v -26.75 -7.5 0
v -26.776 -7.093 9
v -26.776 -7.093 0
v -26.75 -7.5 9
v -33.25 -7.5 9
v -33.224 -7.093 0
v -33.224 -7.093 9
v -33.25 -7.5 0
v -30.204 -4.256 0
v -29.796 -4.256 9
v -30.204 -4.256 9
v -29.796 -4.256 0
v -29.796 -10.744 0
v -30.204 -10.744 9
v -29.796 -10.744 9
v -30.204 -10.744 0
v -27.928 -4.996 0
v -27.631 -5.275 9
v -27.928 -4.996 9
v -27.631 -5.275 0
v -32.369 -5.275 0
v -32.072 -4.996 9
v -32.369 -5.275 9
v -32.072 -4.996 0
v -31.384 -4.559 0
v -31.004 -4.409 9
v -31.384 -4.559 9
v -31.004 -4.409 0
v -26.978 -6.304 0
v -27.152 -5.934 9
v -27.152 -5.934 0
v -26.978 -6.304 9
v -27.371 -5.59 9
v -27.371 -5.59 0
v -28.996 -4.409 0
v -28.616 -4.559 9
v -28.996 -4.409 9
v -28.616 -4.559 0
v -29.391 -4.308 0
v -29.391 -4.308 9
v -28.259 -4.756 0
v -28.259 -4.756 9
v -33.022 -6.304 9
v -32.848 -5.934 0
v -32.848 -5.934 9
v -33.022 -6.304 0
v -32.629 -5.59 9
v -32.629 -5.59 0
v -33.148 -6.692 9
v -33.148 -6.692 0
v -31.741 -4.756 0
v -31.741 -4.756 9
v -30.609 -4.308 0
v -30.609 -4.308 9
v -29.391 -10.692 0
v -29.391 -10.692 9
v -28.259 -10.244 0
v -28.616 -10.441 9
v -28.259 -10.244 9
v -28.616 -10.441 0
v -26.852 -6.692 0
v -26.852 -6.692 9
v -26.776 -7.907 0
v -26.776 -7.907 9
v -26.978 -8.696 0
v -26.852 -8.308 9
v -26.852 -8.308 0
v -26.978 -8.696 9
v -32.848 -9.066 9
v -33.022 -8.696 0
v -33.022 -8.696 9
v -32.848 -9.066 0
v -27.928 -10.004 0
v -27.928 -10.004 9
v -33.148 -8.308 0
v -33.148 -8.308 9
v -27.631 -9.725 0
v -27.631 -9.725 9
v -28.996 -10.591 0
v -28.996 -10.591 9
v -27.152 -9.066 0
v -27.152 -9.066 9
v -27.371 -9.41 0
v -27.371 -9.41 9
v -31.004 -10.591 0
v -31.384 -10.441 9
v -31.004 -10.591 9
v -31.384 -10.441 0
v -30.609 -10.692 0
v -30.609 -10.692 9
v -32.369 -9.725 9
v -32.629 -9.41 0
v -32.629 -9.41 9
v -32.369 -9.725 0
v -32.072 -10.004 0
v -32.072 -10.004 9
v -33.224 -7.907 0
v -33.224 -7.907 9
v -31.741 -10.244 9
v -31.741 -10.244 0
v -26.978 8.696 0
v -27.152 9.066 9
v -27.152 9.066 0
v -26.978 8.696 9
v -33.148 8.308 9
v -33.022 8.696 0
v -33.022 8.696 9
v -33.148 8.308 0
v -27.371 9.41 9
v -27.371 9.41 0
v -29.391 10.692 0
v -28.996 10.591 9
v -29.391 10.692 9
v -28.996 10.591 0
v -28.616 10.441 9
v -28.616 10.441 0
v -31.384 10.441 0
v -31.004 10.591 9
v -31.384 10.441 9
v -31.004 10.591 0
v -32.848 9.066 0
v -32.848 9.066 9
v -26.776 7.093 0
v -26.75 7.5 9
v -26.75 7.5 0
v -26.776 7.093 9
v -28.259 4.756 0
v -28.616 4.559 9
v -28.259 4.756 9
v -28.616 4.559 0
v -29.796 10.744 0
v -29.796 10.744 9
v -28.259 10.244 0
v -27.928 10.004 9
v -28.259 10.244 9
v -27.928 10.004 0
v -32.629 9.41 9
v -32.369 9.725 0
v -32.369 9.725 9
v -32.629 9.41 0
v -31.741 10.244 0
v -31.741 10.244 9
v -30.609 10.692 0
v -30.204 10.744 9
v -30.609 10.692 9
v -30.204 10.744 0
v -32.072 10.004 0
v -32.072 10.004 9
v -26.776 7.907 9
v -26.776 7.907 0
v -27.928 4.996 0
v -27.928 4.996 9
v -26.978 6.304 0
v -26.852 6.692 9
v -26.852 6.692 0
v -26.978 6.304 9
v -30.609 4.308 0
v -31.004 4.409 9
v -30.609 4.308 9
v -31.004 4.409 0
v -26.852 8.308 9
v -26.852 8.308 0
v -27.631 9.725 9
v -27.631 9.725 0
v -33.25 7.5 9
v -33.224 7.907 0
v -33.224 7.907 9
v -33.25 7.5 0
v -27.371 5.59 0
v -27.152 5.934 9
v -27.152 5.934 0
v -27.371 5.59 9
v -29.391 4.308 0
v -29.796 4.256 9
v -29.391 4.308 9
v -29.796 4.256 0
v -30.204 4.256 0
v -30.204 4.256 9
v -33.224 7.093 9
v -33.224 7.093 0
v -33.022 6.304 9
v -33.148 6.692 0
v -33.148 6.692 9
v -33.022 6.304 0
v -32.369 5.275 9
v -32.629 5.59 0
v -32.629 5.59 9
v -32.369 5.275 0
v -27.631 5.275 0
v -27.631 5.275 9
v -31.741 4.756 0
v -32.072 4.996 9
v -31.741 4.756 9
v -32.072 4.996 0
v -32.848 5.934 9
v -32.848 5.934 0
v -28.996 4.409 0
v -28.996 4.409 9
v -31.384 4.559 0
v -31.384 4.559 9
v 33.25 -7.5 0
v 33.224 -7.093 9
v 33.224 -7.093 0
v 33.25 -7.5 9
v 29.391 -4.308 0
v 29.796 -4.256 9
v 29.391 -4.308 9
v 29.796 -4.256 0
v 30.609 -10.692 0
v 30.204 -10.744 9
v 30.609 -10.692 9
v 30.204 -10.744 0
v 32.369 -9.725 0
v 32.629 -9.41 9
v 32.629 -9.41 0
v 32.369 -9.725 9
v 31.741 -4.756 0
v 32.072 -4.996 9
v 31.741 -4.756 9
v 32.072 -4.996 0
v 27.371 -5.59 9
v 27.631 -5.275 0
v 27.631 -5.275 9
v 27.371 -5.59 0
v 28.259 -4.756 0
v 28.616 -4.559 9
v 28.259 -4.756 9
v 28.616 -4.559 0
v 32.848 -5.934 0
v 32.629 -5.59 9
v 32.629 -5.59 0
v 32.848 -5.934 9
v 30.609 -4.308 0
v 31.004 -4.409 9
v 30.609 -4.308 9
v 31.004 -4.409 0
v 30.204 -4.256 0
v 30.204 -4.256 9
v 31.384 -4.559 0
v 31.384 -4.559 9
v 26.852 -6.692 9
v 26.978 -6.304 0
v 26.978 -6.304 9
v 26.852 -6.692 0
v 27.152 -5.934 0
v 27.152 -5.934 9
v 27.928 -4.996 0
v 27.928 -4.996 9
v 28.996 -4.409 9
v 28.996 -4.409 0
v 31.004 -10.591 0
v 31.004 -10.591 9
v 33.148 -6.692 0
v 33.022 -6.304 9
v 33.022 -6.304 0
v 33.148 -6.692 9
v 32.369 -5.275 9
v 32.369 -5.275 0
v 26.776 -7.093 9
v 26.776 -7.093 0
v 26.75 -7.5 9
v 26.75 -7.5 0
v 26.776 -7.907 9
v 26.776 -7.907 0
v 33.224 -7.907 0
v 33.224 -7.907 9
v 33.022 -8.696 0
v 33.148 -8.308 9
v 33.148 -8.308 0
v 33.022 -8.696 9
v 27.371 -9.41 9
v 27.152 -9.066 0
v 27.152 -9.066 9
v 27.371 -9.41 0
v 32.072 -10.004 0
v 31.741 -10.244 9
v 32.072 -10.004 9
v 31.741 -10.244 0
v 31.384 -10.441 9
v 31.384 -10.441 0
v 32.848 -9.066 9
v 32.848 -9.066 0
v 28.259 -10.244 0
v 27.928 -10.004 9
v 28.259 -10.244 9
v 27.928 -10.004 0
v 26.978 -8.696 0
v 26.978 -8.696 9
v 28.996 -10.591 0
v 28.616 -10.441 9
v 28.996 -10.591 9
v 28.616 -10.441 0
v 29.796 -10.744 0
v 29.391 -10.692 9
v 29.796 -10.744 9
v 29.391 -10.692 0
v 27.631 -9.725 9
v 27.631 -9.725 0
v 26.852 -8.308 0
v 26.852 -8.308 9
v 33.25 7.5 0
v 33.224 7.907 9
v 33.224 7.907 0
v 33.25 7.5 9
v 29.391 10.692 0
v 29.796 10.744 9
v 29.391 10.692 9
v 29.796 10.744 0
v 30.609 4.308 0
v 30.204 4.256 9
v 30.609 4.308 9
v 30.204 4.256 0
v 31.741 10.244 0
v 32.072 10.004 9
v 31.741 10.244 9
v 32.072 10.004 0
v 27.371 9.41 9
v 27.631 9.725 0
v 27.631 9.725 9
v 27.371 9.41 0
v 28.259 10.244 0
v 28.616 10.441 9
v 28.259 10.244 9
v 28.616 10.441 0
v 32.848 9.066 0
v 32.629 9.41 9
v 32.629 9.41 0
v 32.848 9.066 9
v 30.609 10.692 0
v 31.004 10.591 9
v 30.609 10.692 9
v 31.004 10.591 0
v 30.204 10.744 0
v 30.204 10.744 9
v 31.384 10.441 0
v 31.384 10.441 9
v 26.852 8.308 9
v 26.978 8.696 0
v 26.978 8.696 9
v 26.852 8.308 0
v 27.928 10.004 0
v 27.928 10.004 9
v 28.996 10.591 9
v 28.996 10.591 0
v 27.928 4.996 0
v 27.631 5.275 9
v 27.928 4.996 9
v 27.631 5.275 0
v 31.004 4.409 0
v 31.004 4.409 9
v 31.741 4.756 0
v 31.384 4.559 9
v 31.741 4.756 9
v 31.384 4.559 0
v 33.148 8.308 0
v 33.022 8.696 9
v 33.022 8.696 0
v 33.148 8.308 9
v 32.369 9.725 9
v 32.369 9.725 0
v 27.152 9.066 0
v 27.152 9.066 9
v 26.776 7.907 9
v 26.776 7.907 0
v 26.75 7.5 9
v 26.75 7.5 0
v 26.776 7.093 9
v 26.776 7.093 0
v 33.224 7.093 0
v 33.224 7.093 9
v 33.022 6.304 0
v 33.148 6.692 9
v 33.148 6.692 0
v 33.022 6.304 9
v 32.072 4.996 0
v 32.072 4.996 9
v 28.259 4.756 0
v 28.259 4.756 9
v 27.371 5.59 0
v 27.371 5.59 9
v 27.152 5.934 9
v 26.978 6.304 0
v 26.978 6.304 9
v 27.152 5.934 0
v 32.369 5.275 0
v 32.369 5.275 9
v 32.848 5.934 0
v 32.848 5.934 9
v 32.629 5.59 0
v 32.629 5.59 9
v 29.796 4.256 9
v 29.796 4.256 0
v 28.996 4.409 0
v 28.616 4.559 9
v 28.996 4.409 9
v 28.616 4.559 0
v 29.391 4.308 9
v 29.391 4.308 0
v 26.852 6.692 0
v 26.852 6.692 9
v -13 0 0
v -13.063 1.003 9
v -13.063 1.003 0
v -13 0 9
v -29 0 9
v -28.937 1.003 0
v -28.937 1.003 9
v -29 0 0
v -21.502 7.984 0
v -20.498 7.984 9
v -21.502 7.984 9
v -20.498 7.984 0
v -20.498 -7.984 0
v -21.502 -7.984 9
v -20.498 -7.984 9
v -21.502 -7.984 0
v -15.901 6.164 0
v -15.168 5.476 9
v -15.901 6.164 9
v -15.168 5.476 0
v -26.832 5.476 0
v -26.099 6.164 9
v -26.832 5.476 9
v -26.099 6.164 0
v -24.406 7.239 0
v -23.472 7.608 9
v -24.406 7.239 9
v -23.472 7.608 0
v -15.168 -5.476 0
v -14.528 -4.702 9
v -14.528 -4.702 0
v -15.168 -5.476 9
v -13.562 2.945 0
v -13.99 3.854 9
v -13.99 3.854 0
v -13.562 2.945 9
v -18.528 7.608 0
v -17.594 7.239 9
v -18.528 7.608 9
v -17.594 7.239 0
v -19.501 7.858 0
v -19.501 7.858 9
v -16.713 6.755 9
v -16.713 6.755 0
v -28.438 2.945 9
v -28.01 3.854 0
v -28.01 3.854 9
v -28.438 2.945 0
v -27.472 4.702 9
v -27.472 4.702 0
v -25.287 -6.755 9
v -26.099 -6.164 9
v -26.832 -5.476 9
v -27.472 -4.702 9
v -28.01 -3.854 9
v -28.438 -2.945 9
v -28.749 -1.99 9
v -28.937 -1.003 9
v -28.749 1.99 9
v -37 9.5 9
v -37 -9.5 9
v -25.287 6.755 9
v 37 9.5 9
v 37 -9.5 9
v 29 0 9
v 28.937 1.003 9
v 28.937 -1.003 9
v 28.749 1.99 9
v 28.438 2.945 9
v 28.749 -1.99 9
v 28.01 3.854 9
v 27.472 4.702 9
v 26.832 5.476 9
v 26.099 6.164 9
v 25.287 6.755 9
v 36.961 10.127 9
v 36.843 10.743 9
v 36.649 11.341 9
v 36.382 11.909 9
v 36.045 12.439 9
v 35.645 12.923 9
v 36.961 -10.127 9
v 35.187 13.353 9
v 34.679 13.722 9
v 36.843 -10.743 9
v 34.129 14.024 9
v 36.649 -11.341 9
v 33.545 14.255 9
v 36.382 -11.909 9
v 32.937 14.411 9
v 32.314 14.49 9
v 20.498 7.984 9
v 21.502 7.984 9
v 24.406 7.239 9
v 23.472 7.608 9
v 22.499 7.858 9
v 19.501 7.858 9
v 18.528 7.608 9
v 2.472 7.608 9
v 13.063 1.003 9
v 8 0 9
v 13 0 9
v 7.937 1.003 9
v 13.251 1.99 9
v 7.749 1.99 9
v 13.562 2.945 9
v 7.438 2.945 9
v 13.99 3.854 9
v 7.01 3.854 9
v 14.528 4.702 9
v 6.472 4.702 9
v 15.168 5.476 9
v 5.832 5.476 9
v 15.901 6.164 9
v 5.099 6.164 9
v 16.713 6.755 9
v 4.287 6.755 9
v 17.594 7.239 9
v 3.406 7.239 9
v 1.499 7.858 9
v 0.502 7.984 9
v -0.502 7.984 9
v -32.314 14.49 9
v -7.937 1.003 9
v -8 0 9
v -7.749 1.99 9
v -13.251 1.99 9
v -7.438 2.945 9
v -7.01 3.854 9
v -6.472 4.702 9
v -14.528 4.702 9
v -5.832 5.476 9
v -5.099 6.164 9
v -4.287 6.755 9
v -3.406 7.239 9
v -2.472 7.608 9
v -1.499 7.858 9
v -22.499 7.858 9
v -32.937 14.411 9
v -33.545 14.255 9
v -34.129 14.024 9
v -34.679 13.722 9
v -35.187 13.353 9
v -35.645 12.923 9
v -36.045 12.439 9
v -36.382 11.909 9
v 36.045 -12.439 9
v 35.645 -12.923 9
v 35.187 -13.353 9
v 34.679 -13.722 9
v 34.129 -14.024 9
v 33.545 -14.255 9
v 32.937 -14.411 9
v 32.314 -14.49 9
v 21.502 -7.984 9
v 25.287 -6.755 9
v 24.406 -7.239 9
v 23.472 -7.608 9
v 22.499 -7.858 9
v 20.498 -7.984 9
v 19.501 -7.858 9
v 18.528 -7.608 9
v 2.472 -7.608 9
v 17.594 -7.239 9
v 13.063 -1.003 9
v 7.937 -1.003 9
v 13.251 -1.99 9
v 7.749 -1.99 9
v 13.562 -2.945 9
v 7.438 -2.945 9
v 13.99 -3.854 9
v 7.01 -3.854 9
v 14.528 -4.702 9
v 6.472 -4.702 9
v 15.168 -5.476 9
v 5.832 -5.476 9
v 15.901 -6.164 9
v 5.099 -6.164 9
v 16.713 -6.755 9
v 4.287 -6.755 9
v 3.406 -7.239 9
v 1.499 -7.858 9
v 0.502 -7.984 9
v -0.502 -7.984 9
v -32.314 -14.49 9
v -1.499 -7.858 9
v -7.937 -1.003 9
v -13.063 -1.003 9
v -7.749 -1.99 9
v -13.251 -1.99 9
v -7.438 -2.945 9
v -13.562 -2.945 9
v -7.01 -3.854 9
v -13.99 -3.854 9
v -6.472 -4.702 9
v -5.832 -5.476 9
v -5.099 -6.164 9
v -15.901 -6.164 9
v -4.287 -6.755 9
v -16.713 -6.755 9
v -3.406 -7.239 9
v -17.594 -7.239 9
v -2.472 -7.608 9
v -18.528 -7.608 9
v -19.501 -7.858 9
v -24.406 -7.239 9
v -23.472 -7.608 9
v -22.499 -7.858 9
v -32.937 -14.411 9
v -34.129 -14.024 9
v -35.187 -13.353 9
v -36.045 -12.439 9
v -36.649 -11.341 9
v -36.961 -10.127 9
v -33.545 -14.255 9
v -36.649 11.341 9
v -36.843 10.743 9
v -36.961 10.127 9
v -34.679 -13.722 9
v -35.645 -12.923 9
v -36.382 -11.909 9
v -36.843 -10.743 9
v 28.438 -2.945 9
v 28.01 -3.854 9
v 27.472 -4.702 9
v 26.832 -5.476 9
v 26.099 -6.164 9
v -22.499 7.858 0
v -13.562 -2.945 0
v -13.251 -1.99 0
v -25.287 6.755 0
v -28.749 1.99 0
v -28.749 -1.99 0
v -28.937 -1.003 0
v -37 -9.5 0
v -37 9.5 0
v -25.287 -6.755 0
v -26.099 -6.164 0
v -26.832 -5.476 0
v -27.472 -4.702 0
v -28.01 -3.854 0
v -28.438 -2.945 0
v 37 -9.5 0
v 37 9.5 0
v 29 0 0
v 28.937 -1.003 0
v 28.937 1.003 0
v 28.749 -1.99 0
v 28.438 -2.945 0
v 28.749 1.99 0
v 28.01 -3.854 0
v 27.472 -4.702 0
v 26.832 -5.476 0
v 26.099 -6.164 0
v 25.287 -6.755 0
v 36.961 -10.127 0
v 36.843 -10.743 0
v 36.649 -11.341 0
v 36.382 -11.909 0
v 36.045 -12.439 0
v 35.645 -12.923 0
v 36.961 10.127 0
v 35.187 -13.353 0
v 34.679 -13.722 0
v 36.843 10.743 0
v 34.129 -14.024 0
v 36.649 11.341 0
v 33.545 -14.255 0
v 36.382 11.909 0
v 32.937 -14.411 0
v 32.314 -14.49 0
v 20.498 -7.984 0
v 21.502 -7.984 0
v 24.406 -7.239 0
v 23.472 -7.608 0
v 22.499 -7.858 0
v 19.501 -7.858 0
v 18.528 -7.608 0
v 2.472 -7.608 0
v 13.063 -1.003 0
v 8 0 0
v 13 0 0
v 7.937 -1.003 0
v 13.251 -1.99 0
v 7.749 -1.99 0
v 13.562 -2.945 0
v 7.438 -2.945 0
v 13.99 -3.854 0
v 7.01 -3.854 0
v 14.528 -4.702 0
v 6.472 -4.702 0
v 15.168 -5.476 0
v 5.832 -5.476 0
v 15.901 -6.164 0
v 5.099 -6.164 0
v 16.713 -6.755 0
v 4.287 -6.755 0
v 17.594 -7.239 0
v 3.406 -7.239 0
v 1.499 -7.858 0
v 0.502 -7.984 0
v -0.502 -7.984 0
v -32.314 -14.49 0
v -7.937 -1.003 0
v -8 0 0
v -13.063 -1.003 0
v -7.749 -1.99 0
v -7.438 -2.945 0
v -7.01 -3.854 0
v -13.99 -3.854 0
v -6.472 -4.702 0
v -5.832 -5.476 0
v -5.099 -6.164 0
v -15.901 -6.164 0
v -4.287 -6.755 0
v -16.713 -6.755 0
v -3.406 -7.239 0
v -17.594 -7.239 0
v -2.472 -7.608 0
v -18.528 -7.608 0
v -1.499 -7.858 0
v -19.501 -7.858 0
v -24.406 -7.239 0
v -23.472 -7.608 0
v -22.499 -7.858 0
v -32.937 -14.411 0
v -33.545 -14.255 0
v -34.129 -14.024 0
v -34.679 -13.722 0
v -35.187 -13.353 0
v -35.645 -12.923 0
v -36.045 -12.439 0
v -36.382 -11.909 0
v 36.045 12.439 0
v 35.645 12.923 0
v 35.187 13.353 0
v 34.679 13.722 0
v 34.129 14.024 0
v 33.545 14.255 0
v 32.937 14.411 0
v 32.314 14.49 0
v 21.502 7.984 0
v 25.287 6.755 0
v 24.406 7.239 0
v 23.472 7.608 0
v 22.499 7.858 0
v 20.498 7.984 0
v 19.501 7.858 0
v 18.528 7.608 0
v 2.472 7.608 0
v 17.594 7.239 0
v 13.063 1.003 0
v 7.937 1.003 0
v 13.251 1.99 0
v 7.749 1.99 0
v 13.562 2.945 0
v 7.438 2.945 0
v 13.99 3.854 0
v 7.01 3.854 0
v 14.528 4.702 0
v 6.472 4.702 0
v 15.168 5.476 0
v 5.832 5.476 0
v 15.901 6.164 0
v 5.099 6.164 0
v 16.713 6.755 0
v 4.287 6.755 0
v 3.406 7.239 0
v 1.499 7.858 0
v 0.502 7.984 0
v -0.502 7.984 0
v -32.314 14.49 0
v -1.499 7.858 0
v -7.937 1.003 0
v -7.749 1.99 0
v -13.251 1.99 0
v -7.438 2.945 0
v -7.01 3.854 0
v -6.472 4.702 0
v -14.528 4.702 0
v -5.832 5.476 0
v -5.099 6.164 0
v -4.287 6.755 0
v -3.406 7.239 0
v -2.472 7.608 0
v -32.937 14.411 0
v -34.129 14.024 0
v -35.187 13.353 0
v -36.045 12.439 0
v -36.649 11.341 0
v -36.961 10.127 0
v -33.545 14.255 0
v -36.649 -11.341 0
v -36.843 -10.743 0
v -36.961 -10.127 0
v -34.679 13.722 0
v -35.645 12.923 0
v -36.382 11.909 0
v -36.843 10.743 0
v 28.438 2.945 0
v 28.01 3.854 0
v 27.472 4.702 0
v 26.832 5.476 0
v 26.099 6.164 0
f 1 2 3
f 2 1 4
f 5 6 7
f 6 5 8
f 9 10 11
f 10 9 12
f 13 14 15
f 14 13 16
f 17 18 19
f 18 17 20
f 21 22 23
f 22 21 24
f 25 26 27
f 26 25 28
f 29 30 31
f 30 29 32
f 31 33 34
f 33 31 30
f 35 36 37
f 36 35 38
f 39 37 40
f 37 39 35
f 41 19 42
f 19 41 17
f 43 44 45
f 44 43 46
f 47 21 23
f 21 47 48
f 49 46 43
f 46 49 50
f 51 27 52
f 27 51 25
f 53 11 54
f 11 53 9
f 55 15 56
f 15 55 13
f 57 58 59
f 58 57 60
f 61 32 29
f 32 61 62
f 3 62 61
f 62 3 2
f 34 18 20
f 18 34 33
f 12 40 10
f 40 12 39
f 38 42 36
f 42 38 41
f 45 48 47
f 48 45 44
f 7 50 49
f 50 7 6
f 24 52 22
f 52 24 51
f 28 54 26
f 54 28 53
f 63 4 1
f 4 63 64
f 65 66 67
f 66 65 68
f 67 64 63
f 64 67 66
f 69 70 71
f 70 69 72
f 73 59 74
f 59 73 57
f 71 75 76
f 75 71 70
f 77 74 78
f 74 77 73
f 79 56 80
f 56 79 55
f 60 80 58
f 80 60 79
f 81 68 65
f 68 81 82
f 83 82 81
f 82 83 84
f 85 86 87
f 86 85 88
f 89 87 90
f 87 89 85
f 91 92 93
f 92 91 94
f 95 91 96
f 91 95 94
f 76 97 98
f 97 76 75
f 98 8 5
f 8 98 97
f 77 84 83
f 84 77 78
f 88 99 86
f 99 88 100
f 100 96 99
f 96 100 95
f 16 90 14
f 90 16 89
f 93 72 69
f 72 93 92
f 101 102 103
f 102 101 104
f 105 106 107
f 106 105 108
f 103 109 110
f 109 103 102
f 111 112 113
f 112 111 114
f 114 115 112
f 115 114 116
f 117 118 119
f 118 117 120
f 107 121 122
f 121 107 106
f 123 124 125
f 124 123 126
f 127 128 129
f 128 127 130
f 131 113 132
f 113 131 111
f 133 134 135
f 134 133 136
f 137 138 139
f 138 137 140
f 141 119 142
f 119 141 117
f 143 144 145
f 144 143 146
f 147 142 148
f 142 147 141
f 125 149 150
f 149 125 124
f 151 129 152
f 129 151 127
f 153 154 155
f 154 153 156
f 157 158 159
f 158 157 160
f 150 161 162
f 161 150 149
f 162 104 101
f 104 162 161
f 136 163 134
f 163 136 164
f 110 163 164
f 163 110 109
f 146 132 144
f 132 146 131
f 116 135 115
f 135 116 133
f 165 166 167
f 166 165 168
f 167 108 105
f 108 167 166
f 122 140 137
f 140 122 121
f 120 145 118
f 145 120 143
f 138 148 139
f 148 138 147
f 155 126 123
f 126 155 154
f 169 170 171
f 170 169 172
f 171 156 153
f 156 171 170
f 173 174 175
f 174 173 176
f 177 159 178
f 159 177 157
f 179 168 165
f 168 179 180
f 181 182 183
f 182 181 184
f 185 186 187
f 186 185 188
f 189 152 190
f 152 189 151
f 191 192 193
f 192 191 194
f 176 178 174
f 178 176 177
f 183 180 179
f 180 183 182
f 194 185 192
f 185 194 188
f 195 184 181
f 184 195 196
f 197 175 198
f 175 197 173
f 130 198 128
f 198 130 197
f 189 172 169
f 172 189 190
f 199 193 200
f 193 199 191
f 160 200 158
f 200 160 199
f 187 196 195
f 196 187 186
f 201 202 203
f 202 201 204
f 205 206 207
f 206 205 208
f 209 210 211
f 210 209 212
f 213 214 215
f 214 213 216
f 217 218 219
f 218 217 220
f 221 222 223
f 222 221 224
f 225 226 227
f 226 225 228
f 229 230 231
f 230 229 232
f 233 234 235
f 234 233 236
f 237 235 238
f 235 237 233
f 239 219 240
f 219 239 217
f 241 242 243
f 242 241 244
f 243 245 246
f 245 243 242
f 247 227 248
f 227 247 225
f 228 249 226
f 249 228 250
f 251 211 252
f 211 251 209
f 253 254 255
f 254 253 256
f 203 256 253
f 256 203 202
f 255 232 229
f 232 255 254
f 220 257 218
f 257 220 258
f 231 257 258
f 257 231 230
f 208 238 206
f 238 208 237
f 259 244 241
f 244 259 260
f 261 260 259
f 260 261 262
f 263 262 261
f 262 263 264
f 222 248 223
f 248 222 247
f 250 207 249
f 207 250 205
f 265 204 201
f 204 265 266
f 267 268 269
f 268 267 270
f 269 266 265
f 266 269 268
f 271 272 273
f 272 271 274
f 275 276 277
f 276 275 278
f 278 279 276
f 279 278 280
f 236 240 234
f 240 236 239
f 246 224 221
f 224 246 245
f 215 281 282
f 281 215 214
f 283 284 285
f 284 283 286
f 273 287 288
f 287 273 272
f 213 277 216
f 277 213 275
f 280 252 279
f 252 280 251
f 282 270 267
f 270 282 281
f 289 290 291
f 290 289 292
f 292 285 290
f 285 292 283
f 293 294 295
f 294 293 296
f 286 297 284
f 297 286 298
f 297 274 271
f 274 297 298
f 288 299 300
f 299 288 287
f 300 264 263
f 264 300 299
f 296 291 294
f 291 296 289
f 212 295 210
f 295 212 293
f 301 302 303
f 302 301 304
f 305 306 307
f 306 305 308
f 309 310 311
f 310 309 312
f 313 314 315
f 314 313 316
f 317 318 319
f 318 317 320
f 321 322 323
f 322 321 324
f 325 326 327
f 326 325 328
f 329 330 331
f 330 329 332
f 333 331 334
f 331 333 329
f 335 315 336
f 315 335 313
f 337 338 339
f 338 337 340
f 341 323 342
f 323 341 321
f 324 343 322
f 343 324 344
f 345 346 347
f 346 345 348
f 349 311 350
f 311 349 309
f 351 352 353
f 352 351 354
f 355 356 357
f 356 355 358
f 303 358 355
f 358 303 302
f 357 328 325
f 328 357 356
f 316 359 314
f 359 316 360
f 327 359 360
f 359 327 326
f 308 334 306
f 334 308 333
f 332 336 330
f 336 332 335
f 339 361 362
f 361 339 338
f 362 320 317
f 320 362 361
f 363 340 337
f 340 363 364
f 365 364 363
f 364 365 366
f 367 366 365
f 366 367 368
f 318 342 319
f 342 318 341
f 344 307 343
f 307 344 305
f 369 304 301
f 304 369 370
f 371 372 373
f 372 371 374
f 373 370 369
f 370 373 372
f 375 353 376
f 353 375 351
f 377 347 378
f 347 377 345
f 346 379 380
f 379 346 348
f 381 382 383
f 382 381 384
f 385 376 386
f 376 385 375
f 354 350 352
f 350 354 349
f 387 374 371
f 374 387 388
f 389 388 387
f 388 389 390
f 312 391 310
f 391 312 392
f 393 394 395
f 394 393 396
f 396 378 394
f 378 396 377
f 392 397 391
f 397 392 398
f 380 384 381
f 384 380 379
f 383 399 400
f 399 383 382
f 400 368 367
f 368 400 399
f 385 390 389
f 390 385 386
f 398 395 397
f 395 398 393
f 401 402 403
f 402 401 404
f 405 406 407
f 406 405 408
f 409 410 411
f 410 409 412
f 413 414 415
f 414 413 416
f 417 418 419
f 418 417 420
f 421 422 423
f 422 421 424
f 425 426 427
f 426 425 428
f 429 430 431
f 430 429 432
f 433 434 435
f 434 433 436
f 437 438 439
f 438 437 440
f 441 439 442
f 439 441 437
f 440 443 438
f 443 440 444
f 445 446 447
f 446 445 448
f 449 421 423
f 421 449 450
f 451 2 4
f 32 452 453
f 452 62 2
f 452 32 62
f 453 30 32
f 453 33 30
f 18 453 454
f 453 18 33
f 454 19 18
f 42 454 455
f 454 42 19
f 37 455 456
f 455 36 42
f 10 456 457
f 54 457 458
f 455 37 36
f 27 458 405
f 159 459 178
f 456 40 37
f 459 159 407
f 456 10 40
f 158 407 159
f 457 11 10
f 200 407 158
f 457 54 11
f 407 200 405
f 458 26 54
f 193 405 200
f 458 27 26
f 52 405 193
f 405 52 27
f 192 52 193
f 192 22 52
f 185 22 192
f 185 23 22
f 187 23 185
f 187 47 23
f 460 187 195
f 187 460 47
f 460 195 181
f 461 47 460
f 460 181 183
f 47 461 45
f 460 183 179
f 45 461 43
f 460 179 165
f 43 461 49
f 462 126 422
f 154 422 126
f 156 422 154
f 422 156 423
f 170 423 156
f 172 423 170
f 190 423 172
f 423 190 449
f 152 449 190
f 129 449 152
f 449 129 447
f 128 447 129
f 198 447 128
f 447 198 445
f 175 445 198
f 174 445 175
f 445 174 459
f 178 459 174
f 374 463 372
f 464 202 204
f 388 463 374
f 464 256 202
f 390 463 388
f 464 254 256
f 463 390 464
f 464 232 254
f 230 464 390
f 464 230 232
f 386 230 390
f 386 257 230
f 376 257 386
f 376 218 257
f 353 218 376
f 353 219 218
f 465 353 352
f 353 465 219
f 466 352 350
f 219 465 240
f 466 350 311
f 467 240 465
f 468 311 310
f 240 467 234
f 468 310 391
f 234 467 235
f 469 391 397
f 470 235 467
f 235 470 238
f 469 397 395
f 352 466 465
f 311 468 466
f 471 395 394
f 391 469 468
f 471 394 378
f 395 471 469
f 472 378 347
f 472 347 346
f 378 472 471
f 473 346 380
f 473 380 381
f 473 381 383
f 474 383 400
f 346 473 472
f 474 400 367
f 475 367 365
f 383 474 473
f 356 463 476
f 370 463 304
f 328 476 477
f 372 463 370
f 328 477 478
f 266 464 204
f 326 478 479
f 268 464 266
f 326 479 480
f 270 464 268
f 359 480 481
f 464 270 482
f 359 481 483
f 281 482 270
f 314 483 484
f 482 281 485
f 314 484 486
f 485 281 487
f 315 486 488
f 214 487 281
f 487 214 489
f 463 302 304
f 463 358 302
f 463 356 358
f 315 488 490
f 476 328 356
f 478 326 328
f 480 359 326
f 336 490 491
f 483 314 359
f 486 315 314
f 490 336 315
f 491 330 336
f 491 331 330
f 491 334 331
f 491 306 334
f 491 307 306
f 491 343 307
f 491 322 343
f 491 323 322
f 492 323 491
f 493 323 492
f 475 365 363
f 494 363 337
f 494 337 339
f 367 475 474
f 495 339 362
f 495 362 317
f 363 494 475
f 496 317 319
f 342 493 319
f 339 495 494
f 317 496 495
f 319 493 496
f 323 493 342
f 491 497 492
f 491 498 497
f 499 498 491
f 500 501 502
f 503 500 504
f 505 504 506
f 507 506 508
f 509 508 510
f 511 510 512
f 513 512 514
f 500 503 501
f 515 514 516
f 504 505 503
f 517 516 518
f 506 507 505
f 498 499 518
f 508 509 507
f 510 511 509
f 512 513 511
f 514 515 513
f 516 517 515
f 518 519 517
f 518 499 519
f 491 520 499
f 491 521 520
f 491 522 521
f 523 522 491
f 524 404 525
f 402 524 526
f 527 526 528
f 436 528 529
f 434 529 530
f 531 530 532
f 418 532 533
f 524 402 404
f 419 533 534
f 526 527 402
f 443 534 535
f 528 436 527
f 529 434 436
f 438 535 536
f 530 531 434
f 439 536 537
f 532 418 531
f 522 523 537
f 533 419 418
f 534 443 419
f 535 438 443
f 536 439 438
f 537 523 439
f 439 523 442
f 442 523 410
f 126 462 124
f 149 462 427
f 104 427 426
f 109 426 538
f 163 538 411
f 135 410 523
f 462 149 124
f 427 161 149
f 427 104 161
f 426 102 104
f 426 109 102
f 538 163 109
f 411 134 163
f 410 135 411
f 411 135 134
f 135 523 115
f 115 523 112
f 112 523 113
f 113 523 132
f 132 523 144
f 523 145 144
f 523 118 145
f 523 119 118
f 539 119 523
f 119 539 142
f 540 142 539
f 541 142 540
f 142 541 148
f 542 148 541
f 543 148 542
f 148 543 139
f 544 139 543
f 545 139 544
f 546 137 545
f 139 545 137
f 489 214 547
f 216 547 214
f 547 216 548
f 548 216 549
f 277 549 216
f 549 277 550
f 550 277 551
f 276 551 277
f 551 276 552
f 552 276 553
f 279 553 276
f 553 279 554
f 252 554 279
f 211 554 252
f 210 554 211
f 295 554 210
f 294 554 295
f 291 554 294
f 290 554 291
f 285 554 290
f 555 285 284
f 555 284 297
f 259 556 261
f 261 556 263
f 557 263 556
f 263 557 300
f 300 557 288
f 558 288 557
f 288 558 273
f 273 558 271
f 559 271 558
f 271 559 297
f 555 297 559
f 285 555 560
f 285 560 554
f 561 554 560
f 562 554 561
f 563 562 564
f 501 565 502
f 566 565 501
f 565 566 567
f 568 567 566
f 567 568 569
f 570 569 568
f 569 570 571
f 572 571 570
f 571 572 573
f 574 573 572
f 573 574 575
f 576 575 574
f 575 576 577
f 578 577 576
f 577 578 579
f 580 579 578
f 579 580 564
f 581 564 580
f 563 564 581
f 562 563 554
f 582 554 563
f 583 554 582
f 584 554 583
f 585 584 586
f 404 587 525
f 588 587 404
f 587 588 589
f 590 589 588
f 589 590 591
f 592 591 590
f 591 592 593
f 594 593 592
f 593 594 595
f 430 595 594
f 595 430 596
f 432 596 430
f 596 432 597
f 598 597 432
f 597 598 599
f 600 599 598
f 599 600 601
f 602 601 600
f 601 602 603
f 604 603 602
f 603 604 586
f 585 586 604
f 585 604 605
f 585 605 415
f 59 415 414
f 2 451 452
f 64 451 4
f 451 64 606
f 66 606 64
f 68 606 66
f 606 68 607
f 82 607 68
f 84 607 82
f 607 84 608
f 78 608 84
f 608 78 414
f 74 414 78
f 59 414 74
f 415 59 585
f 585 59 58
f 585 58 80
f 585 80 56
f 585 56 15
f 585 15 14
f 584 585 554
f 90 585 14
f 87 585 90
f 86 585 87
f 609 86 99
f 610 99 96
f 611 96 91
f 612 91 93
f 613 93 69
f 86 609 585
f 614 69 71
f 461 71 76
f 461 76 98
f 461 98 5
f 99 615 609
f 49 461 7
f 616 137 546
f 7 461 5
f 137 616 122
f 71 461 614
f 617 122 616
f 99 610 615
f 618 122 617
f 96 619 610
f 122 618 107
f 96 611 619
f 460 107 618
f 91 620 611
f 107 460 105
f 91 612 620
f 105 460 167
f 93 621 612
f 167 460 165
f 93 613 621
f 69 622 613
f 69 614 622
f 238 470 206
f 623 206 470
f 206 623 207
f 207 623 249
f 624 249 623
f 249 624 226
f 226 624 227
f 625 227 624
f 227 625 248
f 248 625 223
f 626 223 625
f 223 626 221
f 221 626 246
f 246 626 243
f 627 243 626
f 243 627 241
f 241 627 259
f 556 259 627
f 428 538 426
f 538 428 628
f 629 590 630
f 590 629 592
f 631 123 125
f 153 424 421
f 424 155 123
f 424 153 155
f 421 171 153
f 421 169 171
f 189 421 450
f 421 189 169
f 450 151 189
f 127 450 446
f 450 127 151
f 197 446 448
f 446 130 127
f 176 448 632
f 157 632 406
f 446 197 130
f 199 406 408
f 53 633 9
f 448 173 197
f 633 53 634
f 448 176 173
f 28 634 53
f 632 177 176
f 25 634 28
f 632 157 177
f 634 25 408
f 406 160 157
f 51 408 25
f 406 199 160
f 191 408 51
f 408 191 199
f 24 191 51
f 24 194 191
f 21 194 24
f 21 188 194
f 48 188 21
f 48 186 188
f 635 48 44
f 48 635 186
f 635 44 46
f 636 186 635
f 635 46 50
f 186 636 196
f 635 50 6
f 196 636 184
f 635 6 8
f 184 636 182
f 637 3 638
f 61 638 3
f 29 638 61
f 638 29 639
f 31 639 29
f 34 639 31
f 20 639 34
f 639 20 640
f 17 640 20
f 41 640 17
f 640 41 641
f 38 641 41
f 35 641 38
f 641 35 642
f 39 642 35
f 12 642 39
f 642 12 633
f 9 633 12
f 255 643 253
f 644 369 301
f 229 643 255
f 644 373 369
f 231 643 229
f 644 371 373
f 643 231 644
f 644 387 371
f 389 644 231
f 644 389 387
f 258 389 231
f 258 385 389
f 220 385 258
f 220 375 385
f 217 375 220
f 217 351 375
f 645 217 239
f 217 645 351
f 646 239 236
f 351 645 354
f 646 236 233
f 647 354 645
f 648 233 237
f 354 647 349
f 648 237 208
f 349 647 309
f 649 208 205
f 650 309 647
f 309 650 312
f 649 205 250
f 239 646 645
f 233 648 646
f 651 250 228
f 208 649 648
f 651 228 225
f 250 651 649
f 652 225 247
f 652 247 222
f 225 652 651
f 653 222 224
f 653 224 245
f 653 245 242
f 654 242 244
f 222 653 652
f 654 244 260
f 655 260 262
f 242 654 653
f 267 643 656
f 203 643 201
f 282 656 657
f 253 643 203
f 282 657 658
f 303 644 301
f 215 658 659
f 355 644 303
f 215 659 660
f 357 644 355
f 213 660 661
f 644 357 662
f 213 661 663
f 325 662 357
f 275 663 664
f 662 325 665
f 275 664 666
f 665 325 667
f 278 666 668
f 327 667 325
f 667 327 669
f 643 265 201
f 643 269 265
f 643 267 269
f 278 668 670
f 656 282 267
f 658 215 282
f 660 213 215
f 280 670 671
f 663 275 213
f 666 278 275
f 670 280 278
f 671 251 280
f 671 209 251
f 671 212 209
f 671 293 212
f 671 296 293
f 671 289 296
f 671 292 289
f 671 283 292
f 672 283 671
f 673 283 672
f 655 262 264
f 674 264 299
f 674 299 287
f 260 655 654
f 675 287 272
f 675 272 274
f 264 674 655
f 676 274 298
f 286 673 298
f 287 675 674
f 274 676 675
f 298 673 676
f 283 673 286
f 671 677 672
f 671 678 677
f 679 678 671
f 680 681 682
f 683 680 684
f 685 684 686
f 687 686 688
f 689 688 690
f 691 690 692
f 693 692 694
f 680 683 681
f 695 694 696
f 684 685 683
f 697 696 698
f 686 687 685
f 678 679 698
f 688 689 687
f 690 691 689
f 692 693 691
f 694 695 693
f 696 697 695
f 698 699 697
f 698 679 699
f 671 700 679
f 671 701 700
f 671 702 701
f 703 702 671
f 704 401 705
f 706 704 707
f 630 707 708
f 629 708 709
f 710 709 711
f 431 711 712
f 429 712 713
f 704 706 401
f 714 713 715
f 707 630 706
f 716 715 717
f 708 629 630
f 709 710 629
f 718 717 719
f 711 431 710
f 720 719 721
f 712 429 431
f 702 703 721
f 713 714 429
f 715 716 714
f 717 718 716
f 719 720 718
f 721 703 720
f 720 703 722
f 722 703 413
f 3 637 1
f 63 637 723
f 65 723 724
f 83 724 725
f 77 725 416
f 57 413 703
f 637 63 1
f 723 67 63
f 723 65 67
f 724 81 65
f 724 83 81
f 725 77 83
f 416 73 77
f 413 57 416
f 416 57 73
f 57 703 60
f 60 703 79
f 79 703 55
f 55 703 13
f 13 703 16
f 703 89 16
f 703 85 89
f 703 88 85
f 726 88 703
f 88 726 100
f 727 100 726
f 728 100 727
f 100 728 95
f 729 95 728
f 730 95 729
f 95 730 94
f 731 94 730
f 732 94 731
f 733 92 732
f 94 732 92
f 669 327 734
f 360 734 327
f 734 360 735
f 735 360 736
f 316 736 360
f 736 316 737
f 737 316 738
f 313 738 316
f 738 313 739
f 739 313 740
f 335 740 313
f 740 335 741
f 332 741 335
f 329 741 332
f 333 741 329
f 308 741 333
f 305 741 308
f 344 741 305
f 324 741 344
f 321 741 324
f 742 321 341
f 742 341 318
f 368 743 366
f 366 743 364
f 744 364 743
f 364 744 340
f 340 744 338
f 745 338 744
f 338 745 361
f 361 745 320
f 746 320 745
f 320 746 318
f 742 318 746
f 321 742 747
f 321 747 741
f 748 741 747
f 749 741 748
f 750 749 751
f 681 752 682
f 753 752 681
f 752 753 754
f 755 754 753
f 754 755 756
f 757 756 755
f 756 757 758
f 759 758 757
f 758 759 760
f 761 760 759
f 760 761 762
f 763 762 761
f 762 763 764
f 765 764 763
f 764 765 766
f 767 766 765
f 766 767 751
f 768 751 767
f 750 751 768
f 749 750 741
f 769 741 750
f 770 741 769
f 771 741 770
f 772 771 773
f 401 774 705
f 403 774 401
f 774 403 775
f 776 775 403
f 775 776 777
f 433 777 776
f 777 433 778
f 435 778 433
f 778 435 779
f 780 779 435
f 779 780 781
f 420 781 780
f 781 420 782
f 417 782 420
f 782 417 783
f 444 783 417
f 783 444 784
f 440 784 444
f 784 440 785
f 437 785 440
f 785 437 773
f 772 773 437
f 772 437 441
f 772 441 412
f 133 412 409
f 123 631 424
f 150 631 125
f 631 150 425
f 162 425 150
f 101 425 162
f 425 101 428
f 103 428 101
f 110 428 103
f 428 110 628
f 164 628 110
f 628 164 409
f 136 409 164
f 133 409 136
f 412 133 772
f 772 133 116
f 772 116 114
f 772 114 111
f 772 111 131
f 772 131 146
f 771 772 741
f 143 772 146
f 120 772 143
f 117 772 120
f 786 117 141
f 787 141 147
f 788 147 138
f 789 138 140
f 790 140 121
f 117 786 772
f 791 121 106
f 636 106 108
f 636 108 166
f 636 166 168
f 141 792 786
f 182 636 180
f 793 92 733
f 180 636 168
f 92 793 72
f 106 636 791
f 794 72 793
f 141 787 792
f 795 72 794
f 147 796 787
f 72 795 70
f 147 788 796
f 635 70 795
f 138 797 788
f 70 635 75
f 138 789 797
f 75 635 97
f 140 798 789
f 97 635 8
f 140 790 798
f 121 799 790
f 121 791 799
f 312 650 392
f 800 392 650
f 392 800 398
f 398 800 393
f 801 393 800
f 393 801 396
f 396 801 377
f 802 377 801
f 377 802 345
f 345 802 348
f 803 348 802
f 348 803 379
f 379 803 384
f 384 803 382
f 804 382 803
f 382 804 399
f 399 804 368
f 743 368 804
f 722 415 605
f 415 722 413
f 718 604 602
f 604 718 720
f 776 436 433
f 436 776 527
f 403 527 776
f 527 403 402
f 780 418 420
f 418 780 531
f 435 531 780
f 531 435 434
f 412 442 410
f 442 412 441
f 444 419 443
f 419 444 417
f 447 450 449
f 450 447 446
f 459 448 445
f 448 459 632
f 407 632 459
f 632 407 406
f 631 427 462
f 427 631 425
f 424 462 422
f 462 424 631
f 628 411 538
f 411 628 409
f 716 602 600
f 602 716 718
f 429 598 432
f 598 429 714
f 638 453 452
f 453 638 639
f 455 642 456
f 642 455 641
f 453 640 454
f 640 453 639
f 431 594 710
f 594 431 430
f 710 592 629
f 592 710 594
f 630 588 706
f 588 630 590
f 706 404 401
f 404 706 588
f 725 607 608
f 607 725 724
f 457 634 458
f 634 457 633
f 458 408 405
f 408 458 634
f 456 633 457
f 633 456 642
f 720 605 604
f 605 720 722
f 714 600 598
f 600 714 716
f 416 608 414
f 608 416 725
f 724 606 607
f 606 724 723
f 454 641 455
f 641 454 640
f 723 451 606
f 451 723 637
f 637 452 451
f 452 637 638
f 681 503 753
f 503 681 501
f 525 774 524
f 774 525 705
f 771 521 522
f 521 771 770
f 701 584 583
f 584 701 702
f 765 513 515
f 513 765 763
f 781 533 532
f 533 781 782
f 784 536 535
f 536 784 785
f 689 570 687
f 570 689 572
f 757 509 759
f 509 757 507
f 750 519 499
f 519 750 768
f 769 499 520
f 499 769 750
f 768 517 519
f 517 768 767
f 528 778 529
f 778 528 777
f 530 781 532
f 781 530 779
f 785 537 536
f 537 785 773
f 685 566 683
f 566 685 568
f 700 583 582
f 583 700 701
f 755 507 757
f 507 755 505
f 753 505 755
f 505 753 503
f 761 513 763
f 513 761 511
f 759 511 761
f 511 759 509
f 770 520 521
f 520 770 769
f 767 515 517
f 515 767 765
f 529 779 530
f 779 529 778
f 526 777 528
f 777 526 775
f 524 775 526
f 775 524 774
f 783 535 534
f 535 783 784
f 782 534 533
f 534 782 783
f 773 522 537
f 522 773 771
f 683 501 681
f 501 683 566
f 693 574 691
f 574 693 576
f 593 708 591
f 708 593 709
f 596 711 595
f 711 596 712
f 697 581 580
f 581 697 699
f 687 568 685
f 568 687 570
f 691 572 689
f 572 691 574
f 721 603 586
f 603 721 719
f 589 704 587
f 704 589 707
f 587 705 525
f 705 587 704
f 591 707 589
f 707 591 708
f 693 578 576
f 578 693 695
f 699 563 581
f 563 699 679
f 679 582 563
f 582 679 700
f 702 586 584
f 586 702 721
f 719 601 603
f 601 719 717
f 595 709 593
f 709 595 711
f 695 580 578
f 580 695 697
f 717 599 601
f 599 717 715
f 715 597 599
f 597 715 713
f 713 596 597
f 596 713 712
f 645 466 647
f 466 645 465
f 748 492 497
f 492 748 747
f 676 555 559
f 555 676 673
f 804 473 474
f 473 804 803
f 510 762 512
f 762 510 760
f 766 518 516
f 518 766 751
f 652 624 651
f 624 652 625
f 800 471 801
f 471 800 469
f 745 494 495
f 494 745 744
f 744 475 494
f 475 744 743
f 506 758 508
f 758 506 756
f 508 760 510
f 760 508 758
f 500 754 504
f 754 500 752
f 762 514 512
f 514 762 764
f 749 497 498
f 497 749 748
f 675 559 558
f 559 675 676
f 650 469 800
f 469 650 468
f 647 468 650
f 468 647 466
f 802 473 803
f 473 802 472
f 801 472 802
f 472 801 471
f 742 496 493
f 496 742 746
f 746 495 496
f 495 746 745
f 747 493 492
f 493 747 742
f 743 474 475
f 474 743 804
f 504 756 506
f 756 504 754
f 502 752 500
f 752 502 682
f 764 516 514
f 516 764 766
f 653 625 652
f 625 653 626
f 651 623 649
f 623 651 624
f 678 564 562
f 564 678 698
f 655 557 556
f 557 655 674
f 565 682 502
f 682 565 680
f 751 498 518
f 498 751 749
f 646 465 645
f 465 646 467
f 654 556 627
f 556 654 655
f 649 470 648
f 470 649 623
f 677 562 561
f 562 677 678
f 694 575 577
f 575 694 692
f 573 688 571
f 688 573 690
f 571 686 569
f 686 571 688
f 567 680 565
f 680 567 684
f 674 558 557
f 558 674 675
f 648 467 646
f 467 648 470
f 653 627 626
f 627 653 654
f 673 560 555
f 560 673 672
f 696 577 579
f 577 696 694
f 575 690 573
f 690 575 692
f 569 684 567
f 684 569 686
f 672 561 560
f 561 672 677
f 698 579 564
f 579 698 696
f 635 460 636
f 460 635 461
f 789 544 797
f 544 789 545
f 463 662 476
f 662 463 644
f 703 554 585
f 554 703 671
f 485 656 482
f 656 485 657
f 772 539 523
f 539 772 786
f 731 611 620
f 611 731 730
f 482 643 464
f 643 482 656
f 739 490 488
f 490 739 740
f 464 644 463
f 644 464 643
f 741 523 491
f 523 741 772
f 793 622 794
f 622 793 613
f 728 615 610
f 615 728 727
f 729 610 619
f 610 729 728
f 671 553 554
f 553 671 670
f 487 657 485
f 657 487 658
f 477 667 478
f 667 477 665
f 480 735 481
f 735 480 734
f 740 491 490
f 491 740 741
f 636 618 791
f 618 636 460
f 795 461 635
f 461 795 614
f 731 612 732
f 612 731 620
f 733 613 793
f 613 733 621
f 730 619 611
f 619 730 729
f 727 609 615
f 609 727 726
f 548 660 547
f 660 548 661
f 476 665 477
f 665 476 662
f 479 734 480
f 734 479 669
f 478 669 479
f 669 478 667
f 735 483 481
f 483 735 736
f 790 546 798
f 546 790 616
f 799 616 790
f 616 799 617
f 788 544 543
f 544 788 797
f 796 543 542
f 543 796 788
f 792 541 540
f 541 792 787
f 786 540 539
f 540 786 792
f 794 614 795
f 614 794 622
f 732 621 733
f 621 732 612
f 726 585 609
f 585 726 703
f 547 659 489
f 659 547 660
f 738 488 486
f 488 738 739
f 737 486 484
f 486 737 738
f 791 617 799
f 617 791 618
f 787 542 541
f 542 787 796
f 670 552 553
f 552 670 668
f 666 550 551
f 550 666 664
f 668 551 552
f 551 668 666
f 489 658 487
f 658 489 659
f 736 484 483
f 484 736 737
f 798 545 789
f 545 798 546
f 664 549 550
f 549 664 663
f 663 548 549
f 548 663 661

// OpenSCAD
$fn = 50;


difference() {
	union() {
		hull() {
			translate(v = [-32.0000000000, 9.5000000000, 0]) {
				cylinder(h = 9, r = 5);
			}
			translate(v = [32.0000000000, 9.5000000000, 0]) {
				cylinder(h = 9, r = 5);
			}
			translate(v = [-32.0000000000, -9.5000000000, 0]) {
				cylinder(h = 9, r = 5);
			}
			translate(v = [32.0000000000, -9.5000000000, 0]) {
				cylinder(h = 9, r = 5);
			}
		}
	}
	union() {
		#translate(v = [-30.0000000000, -7.5000000000, -100.0000000000]) {
			cylinder(h = 200, r = 3.2500000000);
		}
		#translate(v = [-30.0000000000, 7.5000000000, -100.0000000000]) {
			cylinder(h = 200, r = 3.2500000000);
		}
		#translate(v = [30.0000000000, -7.5000000000, -100.0000000000]) {
			cylinder(h = 200, r = 3.2500000000);
		}
		#translate(v = [30.0000000000, 7.5000000000, -100.0000000000]) {
			cylinder(h = 200, r = 3.2500000000);
		}
		#translate(v = [-21.0000000000, 0, 0]) {
			cylinder(h = 9, r = 8.0000000000);
		}
		#cylinder(h = 9, r = 8.0000000000);
		#translate(v = [21.0000000000, 0, 0]) {
			cylinder(h = 9, r = 8.0000000000);
		}
	}
}
